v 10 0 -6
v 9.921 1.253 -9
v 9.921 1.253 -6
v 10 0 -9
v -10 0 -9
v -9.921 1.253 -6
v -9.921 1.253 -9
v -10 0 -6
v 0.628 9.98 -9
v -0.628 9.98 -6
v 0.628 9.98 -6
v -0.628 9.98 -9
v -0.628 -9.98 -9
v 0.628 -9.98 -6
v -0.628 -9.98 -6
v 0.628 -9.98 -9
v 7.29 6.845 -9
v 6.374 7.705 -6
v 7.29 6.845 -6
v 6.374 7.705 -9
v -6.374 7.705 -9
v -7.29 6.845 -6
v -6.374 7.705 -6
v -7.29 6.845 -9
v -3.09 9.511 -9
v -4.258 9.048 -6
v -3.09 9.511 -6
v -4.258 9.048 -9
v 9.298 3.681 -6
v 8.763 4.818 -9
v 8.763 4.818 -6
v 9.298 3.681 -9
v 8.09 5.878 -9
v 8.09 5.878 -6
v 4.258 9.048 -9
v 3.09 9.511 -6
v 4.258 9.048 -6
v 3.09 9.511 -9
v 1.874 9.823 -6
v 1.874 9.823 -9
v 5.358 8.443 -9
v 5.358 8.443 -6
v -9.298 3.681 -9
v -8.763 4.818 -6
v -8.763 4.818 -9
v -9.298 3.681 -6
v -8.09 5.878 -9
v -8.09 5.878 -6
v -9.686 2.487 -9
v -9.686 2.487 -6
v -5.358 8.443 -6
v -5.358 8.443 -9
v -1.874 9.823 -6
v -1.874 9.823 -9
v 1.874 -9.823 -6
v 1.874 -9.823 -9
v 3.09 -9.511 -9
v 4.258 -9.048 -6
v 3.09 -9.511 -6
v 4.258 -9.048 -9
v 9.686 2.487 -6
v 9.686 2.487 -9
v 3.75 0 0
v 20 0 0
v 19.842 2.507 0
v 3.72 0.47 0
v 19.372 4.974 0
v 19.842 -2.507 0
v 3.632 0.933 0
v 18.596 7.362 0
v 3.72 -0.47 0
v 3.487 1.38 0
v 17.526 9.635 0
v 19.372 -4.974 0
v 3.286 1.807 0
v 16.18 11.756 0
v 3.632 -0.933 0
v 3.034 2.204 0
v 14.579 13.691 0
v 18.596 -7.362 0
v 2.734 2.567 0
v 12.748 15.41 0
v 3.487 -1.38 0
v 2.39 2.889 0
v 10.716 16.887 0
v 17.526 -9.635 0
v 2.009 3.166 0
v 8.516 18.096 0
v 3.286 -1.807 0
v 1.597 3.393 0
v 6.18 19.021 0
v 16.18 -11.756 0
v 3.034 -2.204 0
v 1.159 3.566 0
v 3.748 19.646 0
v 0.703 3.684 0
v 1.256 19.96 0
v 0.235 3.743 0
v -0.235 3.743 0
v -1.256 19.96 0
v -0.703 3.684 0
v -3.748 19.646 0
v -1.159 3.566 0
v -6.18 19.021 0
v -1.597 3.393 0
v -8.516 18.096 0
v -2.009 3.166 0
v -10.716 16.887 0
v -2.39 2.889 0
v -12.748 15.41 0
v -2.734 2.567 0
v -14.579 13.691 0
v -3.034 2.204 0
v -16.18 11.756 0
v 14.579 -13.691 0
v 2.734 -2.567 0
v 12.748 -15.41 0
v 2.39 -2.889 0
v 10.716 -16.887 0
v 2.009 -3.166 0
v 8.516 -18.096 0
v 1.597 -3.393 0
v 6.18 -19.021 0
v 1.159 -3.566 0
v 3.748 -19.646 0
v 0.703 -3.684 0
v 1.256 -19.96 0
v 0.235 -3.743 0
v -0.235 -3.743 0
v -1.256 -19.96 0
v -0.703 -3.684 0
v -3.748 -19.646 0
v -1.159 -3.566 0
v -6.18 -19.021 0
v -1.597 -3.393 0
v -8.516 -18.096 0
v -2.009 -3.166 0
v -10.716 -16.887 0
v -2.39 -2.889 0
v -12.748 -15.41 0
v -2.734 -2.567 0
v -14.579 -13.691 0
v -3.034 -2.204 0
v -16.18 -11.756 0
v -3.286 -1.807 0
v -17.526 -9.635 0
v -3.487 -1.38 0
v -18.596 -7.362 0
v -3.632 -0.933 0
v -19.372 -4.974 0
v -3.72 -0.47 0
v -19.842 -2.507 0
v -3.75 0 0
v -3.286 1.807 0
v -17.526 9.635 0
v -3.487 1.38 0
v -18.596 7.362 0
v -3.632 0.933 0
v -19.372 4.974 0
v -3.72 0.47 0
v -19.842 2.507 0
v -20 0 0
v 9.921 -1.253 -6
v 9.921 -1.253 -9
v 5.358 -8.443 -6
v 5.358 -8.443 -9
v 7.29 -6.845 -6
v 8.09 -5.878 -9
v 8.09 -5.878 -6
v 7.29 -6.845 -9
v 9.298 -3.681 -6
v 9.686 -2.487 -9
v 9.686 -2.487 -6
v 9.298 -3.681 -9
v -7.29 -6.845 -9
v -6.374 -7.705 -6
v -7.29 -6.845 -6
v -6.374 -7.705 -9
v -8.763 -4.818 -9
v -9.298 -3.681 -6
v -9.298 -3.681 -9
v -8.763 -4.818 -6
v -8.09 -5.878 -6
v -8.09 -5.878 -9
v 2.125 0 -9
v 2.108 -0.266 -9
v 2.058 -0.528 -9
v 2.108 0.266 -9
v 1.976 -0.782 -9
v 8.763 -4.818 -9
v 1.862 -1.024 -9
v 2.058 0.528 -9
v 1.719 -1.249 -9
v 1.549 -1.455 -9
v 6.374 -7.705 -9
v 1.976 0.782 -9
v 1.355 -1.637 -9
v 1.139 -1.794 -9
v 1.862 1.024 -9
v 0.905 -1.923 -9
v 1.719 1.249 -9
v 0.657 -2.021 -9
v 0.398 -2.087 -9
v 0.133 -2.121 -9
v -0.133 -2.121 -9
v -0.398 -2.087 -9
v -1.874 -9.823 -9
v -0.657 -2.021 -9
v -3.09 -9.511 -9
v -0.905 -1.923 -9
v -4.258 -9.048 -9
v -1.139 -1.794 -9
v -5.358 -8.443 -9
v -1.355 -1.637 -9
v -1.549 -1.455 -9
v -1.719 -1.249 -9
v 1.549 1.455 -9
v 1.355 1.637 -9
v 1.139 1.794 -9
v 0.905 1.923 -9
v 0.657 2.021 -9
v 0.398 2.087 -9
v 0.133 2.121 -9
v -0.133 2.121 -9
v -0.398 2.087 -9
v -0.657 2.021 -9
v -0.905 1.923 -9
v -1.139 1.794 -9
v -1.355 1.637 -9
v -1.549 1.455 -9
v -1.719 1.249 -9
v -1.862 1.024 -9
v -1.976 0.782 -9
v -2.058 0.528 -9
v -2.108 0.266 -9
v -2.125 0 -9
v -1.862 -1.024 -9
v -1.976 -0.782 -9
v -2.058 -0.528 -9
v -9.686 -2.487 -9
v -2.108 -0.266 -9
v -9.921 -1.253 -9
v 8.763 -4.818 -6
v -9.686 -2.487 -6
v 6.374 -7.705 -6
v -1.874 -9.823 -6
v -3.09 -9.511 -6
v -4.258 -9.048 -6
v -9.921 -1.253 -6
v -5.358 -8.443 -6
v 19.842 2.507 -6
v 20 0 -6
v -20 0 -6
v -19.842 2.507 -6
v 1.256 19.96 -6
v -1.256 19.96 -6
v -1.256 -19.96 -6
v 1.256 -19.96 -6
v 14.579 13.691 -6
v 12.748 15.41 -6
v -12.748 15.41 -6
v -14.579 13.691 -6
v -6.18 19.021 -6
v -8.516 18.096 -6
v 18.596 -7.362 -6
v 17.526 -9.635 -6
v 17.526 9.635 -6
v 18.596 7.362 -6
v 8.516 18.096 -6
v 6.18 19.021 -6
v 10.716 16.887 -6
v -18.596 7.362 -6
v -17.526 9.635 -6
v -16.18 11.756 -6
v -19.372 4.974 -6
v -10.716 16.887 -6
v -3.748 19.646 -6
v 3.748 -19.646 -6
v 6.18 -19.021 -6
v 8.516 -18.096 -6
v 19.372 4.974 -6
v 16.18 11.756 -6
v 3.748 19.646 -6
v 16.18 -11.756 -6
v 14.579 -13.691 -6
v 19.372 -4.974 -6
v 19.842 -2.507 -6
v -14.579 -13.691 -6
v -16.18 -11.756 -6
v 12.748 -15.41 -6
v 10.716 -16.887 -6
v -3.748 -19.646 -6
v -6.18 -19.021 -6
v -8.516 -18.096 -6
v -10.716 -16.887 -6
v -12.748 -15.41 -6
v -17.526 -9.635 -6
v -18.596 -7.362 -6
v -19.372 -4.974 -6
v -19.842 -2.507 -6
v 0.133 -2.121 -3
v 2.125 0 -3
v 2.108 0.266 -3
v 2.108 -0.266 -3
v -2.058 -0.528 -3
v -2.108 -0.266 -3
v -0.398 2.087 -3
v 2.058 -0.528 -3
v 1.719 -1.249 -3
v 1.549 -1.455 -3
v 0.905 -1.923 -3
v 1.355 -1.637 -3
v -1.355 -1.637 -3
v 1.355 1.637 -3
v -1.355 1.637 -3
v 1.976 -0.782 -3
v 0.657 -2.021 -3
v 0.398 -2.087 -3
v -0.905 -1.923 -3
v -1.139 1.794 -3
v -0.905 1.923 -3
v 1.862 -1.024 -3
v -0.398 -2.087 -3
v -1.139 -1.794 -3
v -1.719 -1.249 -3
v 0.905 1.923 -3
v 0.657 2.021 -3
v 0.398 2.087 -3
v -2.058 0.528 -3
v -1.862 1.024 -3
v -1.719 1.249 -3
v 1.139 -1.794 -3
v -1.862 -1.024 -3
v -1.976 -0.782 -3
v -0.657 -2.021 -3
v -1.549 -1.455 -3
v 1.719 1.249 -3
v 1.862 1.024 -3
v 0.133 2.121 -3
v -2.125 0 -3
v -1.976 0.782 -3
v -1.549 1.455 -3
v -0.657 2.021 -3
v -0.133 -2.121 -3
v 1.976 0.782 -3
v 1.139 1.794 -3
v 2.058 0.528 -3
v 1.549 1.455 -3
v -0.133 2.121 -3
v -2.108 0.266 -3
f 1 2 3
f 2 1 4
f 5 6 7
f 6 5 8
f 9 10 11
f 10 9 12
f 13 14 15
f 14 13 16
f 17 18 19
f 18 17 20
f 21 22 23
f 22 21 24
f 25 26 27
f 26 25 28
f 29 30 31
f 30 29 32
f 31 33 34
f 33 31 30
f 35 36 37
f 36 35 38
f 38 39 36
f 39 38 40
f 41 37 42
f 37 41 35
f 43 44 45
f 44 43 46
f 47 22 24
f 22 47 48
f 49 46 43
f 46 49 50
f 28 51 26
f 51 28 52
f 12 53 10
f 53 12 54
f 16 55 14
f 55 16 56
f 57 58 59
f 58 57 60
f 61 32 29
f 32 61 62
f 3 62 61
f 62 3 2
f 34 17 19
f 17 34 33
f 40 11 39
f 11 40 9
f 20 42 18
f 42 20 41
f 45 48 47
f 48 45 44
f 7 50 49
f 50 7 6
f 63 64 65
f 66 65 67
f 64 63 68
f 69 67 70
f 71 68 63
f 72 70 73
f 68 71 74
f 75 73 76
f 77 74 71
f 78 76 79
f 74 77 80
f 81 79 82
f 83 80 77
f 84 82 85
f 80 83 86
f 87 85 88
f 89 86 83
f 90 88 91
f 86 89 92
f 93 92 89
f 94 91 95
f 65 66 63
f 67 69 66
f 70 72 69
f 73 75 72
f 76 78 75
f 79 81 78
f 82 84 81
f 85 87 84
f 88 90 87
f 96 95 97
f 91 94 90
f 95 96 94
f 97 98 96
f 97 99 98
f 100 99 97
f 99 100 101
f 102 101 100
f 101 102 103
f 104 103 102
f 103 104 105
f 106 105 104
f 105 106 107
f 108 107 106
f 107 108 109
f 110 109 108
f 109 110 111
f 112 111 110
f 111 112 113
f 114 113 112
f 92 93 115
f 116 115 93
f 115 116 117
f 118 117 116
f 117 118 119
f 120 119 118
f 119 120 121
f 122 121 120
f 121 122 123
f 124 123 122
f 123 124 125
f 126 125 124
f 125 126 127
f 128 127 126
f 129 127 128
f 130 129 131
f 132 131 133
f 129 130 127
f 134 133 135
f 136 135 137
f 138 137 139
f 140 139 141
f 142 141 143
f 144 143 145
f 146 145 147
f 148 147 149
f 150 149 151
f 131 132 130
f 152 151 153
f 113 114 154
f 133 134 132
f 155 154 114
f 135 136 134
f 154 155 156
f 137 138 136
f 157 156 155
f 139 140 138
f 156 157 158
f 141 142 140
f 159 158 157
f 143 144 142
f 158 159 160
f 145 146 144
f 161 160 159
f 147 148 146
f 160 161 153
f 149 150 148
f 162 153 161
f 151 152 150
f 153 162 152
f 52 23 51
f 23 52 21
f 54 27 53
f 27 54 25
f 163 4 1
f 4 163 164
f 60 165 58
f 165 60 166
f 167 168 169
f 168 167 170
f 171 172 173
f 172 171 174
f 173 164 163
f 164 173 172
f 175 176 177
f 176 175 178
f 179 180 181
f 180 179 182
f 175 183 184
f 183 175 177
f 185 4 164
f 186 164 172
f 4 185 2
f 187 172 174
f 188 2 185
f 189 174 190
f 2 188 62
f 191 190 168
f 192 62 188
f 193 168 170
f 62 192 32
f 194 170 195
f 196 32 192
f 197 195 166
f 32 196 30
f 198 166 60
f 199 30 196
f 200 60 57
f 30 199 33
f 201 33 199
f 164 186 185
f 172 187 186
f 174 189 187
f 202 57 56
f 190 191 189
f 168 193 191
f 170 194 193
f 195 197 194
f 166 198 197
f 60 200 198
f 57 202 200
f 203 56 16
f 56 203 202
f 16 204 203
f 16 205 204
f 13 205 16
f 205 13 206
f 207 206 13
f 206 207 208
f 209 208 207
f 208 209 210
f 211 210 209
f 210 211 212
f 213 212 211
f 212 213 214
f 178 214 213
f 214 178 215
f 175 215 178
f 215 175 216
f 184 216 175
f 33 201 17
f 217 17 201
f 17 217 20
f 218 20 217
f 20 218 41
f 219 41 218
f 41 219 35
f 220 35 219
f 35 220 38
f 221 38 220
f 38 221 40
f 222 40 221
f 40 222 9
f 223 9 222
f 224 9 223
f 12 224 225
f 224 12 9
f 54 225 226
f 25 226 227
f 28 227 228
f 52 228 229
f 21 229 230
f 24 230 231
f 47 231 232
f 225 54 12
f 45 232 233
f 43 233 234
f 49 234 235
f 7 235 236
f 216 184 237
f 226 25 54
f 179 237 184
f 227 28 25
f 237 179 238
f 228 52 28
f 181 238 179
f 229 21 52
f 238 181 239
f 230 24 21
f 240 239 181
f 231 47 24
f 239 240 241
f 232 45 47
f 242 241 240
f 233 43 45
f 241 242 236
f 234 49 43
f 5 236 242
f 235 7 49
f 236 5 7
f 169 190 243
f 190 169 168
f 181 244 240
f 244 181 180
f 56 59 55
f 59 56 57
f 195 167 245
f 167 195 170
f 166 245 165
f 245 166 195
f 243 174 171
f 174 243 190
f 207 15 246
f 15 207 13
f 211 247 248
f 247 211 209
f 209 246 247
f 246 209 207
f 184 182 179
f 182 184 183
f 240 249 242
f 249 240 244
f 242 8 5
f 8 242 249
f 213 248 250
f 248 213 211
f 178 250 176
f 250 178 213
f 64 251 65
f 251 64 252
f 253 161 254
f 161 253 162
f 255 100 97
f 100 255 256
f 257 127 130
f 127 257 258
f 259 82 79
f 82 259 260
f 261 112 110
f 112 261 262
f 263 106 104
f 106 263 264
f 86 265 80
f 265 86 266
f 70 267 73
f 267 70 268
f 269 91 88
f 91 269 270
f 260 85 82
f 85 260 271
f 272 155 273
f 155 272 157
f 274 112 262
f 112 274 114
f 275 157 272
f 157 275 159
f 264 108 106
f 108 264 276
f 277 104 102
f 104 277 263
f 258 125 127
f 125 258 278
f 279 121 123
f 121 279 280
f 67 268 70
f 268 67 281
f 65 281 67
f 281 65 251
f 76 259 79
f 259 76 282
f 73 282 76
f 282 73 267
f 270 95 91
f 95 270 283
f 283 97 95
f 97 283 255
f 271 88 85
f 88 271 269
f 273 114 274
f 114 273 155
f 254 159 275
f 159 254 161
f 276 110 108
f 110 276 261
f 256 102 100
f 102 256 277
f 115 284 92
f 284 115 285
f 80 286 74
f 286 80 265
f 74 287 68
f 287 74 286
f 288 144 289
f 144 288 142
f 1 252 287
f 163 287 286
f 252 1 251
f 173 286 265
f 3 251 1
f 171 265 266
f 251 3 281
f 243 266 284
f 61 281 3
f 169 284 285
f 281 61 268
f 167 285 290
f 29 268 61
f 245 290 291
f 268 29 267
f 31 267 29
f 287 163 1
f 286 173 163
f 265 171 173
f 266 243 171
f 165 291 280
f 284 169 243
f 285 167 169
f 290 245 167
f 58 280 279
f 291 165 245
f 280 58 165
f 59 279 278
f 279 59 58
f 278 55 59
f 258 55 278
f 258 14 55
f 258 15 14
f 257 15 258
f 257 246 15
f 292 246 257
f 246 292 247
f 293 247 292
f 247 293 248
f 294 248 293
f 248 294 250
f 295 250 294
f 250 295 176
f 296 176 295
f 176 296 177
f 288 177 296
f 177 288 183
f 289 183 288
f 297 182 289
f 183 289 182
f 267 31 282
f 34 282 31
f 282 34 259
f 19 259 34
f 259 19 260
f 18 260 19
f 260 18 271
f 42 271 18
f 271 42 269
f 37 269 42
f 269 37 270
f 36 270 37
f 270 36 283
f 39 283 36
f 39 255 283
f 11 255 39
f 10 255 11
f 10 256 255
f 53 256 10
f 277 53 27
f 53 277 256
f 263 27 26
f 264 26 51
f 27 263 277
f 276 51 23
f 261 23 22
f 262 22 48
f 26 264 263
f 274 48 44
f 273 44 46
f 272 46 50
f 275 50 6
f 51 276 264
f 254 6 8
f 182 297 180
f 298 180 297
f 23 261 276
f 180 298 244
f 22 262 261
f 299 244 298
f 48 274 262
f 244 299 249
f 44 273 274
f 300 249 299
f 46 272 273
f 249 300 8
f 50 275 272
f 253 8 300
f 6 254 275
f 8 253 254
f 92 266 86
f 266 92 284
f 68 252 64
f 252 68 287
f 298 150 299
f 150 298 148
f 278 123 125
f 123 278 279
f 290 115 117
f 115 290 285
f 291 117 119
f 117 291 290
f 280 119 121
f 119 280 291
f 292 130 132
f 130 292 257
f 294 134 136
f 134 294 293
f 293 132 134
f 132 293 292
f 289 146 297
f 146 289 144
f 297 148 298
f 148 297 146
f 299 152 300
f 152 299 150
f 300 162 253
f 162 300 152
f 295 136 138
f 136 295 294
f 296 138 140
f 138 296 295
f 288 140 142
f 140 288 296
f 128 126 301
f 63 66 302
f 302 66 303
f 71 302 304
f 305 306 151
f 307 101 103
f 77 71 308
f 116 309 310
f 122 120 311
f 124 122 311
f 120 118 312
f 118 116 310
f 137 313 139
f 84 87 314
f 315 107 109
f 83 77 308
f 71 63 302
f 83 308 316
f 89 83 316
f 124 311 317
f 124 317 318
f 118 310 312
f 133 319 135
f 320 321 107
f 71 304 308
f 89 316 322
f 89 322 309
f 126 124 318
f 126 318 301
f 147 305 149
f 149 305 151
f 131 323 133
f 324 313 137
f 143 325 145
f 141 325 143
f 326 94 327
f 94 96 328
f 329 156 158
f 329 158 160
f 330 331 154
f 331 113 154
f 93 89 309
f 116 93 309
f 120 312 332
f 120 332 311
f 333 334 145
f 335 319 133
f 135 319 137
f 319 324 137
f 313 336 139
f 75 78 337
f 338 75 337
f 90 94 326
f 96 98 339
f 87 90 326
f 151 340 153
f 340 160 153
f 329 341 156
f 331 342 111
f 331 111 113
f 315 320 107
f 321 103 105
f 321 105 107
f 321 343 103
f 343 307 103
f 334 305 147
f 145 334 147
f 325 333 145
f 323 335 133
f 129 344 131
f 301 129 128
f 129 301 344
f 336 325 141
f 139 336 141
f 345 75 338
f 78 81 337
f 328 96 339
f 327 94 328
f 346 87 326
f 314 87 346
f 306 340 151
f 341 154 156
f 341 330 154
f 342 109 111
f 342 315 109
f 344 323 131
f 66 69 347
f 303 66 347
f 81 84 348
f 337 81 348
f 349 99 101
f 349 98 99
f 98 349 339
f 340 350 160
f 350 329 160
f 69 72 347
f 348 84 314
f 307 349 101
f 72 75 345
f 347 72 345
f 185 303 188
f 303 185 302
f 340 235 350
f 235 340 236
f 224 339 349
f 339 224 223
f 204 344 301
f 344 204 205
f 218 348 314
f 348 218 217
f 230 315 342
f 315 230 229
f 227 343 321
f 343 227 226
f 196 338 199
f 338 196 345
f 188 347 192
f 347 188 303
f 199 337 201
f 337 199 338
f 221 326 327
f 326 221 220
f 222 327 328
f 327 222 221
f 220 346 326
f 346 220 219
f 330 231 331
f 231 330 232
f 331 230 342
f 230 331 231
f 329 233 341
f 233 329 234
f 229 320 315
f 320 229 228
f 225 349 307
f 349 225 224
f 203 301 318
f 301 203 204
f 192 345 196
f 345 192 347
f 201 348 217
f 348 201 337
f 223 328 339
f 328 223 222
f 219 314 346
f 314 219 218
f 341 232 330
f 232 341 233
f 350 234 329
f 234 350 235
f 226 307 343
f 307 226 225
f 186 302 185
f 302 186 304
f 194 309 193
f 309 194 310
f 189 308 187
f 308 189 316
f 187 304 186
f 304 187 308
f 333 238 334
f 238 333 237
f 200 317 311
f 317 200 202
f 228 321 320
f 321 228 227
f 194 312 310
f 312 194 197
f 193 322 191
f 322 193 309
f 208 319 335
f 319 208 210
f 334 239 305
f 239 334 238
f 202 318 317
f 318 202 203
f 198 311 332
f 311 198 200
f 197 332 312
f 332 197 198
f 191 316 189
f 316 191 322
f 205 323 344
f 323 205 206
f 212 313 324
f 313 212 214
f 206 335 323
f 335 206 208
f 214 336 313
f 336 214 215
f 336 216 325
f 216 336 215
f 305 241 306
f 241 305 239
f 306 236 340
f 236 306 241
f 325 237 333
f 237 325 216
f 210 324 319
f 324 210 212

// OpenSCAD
$fn = 50;


difference() {
	union() {
		translate(v = [0, 0, -9.0000000000]) {
			cylinder(h = 9, r = 10.0000000000);
		}
		translate(v = [0, 0, -6.0000000000]) {
			cylinder(h = 6, r = 20.0000000000);
		}
	}
	union() {
		translate(v = [0, 0, 0]) {
			rotate(a = [0, 0, 0]) {
				difference() {
					union() {
						#translate(v = [0, 0, -9.0000000000]) {
							cylinder(h = 9, r = 2.0000000000);
						}
						#translate(v = [0, 0, -3]) {
							cylinder(h = 3, r1 = 2.1250000000, r2 = 3.7500000000);
						}
						#translate(v = [0, 0, -9.0000000000]) {
							cylinder(h = 9, r = 2.1250000000);
						}
						#translate(v = [0, 0, -9.0000000000]) {
							cylinder(h = 9, r = 2.0000000000);
						}
					}
					union();
				}
			}
		}
	}
}
